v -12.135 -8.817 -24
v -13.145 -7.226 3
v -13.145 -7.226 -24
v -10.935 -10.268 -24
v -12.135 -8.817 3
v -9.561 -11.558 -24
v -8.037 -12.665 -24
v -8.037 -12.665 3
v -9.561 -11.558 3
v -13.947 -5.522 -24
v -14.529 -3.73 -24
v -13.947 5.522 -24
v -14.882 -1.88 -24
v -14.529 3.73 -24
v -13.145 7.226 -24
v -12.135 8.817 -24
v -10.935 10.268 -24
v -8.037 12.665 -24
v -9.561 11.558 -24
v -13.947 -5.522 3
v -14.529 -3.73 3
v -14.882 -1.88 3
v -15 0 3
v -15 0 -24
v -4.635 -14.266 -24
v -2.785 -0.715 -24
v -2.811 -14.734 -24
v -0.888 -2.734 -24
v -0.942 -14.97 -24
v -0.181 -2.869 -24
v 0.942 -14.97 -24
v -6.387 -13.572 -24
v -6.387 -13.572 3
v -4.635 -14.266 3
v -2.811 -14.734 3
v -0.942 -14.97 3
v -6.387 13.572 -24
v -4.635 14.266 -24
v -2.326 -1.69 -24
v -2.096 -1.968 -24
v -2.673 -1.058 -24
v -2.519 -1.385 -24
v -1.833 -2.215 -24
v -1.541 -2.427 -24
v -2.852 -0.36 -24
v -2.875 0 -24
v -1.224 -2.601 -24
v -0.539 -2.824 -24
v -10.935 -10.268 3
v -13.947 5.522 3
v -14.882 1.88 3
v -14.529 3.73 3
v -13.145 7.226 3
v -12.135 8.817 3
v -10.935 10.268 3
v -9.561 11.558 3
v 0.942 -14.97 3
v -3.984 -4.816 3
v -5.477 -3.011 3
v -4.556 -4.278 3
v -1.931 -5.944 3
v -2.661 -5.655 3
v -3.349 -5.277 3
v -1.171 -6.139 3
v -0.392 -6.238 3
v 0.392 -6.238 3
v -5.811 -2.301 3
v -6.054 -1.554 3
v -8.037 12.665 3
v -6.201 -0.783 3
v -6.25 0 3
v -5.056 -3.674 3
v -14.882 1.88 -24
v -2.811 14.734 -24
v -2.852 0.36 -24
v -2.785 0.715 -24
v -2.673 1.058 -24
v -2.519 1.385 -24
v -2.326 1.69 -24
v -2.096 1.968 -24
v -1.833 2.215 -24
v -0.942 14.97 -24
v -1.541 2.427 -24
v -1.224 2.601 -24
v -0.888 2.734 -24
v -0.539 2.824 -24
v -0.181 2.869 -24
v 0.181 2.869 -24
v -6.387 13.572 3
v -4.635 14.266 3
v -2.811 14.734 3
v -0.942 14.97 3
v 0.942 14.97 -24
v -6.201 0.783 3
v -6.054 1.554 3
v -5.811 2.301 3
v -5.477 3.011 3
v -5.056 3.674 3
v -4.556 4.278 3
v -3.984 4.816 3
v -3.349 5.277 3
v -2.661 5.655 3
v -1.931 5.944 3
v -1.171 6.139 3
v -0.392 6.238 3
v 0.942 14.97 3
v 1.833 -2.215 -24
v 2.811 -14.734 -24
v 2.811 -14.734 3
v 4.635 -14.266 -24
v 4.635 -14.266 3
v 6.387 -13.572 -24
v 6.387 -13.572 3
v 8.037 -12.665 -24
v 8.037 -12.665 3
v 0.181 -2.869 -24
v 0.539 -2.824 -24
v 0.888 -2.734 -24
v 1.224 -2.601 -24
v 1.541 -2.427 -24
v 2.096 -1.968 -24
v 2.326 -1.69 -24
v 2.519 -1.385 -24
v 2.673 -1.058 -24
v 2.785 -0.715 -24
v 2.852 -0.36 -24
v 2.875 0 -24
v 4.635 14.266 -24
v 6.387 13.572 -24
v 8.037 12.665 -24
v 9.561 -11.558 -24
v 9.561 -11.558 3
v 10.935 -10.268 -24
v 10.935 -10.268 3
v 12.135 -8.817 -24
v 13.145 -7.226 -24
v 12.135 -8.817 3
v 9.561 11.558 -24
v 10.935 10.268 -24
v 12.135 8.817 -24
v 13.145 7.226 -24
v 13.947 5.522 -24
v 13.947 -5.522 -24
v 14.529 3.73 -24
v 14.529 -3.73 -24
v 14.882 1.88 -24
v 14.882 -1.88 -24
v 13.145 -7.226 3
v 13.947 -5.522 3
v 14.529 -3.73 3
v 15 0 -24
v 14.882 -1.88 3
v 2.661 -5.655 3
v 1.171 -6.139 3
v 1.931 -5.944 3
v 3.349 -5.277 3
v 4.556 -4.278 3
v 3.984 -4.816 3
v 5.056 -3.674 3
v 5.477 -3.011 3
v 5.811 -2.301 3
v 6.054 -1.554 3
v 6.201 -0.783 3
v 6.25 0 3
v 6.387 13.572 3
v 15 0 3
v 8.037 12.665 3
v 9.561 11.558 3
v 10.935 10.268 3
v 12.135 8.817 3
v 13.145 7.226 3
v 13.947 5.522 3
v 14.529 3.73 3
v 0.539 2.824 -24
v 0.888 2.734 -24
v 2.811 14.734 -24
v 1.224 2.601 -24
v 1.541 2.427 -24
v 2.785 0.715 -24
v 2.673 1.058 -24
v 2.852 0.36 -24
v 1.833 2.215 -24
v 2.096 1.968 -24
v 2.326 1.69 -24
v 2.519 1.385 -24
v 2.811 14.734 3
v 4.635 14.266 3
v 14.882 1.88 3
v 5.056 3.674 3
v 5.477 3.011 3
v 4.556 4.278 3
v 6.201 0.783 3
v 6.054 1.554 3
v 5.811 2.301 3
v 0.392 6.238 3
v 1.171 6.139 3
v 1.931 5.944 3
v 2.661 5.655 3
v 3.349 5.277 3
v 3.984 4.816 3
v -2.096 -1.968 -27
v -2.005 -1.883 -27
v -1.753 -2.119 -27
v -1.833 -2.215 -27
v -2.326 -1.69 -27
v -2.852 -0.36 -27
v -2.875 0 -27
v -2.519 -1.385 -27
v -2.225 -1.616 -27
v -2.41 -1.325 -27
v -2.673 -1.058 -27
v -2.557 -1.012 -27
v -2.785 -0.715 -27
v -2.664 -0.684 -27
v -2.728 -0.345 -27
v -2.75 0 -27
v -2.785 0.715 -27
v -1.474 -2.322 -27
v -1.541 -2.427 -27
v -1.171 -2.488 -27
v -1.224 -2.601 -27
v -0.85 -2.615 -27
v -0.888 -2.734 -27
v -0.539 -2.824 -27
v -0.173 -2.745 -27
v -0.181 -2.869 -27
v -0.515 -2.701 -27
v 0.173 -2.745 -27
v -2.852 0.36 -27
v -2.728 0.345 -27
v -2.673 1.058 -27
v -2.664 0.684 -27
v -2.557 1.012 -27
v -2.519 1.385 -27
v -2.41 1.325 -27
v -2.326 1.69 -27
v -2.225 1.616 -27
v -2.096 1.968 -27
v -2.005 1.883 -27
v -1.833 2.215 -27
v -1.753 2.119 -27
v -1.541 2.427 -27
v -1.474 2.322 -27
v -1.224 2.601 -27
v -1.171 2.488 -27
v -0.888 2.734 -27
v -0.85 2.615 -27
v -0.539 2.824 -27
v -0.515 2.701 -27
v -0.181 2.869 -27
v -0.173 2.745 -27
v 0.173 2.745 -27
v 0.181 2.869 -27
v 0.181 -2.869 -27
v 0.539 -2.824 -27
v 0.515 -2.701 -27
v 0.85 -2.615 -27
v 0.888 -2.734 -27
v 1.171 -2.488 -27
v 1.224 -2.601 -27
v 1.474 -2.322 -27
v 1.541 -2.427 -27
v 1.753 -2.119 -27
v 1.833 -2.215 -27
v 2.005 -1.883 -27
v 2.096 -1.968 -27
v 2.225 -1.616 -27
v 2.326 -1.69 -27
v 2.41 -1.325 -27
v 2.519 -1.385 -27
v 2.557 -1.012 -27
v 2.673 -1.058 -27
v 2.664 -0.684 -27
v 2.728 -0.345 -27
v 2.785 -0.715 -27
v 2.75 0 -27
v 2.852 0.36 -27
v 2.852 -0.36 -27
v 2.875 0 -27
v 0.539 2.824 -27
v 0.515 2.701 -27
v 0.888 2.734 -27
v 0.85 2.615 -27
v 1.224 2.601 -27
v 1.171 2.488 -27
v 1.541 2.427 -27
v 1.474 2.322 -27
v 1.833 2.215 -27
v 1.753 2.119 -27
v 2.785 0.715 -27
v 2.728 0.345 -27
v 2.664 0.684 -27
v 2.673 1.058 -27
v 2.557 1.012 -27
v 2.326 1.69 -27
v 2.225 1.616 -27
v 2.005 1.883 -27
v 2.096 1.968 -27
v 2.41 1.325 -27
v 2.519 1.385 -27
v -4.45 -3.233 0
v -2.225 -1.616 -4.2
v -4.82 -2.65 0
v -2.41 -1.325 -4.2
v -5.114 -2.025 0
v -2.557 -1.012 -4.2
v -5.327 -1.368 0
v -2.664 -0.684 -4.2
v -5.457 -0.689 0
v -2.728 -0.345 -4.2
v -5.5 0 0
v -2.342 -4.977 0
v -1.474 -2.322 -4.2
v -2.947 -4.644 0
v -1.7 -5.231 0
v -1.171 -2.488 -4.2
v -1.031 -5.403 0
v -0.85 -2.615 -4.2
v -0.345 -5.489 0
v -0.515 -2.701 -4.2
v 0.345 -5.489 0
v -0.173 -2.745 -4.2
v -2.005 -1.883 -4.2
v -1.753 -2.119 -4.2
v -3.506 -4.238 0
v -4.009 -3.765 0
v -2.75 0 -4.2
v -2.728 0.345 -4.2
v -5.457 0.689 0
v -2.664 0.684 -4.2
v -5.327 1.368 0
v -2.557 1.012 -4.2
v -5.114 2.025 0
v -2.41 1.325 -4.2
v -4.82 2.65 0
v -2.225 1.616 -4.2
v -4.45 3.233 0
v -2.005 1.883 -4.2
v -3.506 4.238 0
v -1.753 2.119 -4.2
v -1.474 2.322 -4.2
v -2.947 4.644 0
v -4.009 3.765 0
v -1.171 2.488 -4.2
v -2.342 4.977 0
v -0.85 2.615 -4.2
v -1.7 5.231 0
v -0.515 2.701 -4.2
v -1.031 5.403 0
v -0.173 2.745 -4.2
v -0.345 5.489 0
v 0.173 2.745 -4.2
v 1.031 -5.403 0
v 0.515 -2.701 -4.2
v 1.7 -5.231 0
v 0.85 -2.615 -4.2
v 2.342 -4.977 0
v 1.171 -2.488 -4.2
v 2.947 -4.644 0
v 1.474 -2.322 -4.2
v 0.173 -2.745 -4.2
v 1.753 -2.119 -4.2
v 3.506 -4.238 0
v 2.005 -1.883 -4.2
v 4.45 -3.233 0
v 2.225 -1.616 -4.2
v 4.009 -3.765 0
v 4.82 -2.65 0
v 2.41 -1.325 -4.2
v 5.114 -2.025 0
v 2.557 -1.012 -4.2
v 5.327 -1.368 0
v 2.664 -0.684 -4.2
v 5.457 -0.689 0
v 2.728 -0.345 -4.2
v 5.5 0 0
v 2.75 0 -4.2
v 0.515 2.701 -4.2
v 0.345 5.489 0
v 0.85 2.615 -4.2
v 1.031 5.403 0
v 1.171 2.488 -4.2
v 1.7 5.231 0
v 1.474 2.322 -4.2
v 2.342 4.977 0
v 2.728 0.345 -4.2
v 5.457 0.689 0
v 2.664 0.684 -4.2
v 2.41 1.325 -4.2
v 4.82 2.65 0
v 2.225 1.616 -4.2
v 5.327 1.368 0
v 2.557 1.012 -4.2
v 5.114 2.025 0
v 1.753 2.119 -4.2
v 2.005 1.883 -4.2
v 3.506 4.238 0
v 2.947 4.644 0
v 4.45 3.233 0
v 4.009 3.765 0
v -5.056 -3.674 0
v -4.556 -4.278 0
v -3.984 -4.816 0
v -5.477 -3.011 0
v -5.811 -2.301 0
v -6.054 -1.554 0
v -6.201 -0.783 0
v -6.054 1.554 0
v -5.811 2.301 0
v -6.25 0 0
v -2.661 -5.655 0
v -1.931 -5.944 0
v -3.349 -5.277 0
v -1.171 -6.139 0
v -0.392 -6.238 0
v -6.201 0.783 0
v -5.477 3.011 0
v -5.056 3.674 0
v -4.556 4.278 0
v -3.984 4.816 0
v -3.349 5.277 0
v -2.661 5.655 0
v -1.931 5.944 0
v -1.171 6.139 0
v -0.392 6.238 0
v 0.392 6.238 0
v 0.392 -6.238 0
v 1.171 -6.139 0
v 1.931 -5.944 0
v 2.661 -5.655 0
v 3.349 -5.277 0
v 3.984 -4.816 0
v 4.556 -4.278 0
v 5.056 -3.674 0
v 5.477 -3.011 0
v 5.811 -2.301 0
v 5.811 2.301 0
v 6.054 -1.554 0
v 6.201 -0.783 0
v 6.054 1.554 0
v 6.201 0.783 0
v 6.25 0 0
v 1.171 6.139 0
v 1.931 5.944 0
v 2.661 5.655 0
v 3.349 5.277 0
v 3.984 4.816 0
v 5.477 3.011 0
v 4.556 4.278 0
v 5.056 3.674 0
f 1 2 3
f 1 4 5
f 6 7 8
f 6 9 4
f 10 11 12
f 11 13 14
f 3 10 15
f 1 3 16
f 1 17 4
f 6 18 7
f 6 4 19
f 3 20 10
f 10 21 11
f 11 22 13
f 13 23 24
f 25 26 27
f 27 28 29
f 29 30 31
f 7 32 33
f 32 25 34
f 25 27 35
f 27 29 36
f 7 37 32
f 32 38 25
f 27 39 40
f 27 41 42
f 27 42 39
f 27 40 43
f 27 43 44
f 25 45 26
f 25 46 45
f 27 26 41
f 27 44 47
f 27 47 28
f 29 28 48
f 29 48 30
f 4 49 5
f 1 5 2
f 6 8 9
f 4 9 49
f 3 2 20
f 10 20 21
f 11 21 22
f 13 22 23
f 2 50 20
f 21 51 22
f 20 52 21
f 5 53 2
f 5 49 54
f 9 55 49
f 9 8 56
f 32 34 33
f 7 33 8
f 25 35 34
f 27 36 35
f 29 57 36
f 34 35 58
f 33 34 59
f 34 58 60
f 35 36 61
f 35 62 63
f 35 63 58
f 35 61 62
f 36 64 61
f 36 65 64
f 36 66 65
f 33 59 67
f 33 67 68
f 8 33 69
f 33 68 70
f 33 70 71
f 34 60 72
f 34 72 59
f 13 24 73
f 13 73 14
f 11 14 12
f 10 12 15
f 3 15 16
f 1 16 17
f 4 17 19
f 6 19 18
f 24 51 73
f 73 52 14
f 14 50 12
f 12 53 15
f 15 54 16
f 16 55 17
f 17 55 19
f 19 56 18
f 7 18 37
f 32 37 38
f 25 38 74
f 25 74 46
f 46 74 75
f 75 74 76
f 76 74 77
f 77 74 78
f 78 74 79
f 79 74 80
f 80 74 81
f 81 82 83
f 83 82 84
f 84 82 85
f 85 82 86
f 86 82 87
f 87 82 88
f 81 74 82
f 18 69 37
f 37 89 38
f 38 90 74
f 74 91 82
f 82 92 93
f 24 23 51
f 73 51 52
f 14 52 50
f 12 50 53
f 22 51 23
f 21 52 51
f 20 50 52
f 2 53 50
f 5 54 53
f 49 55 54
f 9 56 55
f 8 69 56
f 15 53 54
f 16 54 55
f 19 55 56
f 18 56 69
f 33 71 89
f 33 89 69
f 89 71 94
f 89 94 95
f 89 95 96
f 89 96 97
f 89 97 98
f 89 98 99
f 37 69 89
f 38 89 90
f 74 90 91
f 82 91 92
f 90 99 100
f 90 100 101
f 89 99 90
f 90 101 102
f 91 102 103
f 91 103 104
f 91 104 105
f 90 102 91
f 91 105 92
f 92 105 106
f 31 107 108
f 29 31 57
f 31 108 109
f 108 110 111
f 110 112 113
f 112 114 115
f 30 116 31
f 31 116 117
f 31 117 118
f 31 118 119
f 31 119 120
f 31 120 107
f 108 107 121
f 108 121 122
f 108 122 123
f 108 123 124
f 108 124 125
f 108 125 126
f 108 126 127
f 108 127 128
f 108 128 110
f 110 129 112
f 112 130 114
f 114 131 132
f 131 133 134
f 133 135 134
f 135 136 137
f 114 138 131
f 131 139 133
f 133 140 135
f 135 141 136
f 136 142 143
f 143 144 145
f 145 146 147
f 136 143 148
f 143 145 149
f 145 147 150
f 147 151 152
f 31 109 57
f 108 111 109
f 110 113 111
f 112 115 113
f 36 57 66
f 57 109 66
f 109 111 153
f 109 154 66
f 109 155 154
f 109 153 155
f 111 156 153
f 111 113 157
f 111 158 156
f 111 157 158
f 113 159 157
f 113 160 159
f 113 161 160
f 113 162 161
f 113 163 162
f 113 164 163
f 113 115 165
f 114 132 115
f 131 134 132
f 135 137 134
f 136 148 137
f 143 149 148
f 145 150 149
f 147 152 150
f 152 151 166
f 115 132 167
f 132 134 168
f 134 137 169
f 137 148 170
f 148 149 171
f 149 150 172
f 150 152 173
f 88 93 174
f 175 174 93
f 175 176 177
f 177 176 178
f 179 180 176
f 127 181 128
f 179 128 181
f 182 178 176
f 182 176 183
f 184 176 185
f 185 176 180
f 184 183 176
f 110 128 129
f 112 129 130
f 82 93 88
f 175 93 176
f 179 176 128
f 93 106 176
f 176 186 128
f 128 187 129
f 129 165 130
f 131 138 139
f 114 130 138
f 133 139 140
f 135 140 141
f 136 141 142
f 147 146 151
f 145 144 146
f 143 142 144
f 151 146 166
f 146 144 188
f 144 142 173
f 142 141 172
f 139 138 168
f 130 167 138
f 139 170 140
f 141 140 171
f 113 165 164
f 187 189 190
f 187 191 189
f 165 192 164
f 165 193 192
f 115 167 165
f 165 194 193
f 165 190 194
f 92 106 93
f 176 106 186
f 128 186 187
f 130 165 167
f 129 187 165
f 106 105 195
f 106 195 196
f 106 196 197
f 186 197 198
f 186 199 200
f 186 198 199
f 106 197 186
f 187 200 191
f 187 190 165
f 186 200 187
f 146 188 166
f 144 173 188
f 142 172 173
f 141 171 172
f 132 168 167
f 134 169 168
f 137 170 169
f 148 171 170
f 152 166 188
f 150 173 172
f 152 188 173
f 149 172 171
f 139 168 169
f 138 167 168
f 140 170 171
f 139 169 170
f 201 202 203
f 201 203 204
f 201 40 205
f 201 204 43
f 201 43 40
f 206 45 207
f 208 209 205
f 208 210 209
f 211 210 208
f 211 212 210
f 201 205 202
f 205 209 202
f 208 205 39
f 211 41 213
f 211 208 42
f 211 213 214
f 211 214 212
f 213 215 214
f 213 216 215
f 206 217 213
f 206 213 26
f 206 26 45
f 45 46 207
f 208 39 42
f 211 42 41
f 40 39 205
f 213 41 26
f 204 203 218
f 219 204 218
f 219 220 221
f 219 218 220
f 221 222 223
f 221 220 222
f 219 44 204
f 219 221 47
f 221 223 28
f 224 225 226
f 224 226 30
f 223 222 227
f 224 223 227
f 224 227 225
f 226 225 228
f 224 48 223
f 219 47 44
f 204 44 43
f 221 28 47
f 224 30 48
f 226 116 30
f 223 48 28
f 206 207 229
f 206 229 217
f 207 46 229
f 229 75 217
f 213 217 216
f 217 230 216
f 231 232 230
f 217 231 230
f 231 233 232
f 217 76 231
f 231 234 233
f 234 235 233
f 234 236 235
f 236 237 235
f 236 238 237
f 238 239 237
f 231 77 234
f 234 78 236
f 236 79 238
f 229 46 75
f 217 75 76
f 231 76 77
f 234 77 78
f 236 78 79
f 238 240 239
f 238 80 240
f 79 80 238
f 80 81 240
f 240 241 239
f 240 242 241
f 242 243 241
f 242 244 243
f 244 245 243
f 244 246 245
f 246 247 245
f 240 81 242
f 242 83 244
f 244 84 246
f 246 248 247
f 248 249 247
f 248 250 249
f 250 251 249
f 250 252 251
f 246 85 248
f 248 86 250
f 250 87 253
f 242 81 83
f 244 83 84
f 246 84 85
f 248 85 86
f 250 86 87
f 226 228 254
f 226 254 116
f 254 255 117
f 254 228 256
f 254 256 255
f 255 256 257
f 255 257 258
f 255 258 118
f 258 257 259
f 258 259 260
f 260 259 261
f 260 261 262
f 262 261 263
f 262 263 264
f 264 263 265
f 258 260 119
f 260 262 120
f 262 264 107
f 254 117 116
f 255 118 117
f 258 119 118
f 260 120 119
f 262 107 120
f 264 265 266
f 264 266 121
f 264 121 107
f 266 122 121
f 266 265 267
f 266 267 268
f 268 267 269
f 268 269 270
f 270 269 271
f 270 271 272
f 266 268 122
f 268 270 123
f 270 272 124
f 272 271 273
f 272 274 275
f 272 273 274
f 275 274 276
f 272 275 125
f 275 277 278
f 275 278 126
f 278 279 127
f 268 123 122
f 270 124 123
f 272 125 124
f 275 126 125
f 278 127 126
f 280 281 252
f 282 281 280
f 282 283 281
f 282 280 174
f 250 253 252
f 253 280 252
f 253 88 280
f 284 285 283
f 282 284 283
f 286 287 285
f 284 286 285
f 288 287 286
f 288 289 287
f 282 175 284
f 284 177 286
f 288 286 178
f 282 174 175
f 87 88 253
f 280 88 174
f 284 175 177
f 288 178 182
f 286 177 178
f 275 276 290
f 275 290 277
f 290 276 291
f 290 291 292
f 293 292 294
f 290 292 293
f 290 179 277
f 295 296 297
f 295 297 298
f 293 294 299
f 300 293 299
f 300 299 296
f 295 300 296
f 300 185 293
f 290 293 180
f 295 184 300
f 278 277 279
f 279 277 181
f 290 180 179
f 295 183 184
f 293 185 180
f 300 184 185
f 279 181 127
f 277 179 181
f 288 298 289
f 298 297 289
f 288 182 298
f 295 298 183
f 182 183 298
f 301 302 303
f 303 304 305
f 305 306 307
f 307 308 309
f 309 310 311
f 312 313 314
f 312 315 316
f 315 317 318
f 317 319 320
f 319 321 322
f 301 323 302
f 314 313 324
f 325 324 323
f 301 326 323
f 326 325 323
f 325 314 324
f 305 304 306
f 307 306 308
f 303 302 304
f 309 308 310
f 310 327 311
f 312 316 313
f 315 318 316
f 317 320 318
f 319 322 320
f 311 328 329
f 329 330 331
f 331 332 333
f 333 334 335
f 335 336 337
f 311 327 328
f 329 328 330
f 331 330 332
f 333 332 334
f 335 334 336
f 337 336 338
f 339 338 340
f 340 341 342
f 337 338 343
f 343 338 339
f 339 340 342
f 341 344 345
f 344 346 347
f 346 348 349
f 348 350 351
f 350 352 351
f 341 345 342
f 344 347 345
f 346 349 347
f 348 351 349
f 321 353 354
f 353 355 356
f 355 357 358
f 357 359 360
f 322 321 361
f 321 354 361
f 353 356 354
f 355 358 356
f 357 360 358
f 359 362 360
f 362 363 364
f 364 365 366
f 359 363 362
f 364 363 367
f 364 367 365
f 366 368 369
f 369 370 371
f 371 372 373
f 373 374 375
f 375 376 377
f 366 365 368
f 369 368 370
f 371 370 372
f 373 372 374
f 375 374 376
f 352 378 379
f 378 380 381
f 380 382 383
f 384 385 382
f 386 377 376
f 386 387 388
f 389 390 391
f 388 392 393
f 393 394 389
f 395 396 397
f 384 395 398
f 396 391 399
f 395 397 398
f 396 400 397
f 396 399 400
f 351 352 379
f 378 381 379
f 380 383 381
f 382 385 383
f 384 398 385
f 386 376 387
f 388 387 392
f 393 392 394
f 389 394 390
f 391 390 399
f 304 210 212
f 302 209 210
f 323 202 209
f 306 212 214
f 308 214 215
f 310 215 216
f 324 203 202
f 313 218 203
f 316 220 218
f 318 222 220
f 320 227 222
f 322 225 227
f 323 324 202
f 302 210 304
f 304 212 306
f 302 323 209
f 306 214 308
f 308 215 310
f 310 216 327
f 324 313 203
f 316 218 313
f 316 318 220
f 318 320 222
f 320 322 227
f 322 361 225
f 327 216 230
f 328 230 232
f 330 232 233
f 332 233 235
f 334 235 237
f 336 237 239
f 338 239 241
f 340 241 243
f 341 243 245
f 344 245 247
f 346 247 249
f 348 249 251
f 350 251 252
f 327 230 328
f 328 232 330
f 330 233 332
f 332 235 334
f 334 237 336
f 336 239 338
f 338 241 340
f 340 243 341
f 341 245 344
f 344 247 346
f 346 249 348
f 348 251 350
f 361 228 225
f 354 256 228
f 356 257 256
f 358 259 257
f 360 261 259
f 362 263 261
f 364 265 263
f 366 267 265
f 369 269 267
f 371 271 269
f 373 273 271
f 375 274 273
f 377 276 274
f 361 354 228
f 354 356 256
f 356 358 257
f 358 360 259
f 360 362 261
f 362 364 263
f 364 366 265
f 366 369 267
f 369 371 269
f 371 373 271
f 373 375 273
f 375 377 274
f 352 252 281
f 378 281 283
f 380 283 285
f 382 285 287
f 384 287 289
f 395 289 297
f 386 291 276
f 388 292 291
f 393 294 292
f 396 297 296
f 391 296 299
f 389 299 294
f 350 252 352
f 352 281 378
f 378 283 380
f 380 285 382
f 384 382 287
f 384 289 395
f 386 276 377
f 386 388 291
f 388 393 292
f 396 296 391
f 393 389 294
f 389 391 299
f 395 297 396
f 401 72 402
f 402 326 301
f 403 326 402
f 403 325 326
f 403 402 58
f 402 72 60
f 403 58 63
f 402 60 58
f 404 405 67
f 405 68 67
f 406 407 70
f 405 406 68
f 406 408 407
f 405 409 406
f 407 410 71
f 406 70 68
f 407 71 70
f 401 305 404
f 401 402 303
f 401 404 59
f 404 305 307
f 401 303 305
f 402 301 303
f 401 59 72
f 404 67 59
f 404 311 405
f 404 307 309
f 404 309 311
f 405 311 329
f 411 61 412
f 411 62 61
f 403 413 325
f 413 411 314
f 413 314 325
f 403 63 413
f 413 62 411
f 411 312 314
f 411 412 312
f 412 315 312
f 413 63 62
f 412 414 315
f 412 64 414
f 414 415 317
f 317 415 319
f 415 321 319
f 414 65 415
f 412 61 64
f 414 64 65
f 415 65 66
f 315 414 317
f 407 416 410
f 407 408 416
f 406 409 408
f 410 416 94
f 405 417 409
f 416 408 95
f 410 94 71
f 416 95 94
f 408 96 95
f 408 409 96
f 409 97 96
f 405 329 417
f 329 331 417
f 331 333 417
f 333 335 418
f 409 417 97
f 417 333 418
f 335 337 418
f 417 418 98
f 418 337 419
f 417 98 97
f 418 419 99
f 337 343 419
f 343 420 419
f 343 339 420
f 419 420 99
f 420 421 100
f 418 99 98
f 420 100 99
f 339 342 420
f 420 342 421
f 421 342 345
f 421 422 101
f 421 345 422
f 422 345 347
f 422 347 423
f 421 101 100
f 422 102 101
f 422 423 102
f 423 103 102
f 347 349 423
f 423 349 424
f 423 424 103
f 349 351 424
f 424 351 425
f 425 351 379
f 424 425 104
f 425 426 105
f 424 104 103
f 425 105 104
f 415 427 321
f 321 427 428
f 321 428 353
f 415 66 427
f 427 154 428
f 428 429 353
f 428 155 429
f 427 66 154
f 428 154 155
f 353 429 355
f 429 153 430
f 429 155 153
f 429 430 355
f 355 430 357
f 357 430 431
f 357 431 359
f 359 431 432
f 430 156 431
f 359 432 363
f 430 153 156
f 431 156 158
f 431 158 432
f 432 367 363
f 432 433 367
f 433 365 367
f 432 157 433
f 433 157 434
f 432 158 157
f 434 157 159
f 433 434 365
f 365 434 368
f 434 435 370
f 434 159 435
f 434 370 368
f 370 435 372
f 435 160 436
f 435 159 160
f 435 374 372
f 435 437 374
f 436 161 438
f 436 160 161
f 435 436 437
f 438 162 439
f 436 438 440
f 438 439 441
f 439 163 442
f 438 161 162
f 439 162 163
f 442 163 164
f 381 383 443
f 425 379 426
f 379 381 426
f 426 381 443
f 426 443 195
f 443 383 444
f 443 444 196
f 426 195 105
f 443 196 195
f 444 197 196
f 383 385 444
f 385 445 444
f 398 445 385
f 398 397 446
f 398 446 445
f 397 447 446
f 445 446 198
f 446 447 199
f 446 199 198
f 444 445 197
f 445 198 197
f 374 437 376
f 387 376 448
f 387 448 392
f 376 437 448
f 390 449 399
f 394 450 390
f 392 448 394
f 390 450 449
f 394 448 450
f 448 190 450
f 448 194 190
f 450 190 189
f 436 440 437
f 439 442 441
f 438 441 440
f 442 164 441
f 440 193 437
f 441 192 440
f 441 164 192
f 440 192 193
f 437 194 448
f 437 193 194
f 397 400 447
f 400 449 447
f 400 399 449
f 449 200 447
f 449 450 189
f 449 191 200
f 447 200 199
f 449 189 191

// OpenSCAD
$fn = 50;

difference() {
	union() {
		translate(v = [0, 0, -24.0]) {
			cylinder(h = 27, r = 15.0);
		}
		#translate(v = [0, 0, -27.0]) {
			cylinder(h = 27, r = 2.875);
		}
	}
	union() {
		translate(v = [0, 0, 0]) {
			rotate(a = [0, 0, 0]) {
				difference() {
					union() {
						translate(v = [0, 0, -27.0]) {
							cylinder(h = 27, r = 2.25);
						}
						translate(v = [0, 0, -4.2]) {
							cylinder(h = 4.2, r1 = 2.75, r2 = 5.5);
						}
						translate(v = [0, 0, -27.0]) {
							cylinder(h = 27, r = 2.75);
						}
						translate(v = [0, 0, -27.0]) {
							cylinder(h = 27, r = 2.25);
						}
					}
					union();
				}
			}
		}
		#cylinder(h = 3, r = 6.25);
	}
}
